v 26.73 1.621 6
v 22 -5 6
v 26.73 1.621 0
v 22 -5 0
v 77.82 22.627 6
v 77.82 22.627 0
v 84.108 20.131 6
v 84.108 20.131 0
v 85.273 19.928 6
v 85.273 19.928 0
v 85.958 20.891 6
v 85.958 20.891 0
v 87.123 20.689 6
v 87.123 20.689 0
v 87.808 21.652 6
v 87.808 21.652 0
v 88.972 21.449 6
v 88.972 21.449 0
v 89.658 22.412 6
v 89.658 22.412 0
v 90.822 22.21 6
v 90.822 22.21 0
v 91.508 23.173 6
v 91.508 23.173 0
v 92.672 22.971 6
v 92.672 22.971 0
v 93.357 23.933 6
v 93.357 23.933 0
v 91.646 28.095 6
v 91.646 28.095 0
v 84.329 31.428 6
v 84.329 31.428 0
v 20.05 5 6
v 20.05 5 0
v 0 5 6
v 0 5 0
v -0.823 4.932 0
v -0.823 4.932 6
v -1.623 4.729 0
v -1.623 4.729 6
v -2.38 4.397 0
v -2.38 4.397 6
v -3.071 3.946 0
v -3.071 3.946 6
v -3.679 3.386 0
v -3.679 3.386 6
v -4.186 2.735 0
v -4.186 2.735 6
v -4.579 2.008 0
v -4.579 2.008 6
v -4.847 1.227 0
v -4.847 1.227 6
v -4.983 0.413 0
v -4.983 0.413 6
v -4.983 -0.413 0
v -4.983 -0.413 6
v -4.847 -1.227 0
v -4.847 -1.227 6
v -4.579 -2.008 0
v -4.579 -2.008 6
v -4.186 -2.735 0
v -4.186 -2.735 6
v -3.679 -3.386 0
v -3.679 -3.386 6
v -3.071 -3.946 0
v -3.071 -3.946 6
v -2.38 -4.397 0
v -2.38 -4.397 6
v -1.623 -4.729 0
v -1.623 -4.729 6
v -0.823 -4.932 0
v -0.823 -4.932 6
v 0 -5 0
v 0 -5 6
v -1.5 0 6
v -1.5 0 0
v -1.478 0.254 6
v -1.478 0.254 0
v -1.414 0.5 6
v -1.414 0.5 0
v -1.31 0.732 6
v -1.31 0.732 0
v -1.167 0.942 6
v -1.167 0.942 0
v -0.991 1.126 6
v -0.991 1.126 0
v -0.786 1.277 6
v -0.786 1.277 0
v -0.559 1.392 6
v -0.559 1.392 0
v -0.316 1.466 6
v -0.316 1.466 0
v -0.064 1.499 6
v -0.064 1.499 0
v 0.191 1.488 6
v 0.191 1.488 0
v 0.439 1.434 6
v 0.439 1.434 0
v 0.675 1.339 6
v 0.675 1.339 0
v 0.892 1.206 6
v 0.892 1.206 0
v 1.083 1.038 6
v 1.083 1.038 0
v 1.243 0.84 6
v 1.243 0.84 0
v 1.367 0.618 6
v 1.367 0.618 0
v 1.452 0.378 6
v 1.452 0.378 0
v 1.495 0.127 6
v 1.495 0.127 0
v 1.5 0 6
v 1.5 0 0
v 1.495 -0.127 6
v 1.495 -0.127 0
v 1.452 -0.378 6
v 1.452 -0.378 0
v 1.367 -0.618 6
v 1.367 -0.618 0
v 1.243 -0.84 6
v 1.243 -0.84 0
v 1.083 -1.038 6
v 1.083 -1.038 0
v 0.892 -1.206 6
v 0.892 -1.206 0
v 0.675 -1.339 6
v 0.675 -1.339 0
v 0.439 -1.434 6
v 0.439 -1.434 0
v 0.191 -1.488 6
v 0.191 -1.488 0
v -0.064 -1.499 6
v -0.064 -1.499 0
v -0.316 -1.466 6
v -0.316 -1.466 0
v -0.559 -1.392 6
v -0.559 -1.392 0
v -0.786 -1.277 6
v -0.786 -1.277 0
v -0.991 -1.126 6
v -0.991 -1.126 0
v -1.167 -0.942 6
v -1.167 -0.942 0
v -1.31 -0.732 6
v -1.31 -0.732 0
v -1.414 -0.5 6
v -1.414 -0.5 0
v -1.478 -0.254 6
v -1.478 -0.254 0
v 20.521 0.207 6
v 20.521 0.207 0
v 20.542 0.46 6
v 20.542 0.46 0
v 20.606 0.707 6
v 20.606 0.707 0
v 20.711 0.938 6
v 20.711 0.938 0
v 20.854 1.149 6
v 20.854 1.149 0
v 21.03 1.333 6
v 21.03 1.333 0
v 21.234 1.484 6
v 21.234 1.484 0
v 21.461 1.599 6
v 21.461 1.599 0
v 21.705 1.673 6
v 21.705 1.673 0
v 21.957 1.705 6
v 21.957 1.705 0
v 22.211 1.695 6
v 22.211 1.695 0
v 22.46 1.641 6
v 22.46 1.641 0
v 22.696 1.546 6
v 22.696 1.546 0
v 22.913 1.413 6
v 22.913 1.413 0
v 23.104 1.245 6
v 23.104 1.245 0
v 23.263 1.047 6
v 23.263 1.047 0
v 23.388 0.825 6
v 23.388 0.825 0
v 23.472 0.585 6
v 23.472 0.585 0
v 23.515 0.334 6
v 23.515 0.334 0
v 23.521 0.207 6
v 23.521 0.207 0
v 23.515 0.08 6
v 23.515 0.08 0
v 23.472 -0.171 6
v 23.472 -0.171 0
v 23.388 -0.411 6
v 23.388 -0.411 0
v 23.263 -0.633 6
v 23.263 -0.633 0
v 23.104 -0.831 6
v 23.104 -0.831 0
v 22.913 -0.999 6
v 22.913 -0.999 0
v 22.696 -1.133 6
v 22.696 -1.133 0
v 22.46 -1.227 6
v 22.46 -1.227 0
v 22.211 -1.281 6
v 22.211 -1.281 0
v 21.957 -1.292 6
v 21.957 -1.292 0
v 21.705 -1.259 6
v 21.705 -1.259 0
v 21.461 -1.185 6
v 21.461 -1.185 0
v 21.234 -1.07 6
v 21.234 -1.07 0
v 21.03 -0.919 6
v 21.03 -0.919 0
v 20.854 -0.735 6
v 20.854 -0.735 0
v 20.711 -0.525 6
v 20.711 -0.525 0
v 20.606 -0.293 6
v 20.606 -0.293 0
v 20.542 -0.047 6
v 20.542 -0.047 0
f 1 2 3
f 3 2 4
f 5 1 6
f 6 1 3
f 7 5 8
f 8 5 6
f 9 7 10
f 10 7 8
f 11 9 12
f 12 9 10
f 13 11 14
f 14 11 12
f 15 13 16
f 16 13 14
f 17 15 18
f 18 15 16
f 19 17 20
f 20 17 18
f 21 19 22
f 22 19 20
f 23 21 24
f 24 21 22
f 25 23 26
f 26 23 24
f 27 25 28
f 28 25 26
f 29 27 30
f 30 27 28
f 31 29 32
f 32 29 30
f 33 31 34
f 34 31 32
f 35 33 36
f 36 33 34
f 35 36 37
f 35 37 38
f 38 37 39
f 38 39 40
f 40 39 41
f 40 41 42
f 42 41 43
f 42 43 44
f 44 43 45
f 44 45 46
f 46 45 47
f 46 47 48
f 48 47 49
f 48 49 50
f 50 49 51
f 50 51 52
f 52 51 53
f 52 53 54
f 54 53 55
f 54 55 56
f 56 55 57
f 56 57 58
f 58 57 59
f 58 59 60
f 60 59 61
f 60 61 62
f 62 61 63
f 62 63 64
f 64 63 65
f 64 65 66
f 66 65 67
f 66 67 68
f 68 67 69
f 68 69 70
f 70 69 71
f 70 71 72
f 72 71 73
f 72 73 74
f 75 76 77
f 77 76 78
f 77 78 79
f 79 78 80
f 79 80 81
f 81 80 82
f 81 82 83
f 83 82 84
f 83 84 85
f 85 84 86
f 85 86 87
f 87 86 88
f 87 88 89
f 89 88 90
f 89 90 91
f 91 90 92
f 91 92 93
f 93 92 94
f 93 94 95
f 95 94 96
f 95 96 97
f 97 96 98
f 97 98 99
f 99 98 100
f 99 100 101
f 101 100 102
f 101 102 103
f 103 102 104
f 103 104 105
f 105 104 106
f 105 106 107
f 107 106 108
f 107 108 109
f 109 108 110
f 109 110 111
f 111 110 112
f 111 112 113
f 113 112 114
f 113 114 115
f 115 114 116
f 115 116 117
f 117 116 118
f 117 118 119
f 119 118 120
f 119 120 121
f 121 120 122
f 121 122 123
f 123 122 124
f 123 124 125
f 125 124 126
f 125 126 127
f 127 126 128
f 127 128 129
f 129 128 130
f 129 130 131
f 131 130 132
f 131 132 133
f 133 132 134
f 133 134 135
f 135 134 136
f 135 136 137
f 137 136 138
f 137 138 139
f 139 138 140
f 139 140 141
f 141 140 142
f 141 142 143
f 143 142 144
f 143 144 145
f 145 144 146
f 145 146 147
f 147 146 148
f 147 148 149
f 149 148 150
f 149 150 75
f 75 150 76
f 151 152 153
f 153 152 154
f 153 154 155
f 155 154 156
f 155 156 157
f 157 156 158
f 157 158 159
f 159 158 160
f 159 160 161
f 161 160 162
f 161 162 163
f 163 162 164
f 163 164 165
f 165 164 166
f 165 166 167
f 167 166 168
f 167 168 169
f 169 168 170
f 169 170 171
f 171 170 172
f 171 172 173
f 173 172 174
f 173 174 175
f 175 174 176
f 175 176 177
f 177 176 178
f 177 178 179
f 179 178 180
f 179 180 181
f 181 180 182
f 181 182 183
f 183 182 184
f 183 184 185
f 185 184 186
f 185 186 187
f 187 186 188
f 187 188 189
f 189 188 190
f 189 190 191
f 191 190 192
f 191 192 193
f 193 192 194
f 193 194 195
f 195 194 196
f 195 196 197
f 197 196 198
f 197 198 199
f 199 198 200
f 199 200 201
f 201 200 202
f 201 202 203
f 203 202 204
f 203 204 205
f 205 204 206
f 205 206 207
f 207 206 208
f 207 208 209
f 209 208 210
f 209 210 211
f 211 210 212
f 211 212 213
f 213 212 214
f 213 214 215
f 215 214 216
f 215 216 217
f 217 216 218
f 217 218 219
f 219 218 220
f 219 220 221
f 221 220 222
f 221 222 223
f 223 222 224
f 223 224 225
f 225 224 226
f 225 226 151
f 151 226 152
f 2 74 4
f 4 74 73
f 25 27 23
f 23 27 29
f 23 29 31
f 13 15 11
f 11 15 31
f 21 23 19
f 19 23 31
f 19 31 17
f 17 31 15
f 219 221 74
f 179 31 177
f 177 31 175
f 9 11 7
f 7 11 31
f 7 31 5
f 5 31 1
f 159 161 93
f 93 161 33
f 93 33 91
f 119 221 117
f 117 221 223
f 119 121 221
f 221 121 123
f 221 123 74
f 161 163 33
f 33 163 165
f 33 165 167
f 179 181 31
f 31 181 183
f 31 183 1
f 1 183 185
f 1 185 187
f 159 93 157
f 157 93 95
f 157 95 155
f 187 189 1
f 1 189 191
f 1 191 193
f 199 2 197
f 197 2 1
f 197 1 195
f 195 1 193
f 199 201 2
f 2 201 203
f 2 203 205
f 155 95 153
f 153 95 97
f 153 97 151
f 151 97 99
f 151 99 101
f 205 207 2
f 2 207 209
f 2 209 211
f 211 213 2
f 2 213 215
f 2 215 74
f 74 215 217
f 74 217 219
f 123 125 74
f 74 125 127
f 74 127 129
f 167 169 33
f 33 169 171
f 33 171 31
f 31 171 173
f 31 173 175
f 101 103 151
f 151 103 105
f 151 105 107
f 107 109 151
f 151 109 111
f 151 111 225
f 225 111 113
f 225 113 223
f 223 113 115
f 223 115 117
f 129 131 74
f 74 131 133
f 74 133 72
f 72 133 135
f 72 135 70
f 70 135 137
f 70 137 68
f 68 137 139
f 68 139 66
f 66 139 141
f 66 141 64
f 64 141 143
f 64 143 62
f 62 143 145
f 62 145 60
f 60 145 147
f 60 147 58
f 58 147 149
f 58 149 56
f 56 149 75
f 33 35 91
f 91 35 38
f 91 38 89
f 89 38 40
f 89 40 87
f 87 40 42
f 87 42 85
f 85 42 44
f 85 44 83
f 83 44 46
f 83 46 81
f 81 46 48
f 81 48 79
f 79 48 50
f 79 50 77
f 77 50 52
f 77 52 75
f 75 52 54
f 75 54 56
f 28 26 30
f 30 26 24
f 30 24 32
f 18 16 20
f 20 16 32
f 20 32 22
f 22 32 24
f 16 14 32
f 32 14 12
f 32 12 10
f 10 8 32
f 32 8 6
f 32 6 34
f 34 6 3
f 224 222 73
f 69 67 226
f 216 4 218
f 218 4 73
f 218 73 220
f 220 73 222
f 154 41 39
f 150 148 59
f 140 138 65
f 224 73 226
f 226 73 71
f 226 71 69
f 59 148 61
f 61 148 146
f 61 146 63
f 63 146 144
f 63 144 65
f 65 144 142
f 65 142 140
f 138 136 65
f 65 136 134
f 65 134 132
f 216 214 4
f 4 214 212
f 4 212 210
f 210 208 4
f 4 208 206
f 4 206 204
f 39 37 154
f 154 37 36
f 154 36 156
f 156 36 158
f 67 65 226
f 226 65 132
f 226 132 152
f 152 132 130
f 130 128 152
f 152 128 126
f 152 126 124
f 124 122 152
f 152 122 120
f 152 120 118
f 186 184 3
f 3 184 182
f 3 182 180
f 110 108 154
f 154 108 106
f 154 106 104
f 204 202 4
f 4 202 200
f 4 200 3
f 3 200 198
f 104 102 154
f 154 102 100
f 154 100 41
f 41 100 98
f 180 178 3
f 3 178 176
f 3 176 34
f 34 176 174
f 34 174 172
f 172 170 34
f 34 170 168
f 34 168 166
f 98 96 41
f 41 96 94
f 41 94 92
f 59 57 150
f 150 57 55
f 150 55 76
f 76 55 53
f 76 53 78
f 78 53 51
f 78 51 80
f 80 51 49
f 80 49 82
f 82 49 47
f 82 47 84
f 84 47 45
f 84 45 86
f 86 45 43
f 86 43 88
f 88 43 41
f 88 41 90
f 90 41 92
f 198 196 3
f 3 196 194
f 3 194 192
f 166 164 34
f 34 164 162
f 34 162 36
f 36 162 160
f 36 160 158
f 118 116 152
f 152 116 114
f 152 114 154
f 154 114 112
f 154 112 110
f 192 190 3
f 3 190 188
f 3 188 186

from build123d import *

# Parameters (mm, degrees)
SKETCH1_R           = 1.5
BOSS_EXTRUDE3_DEPTH = 6


with BuildPart() as part:
    # Sketch1 → Boss-Extrude3 (new body)
    with BuildSketch(Plane.XY):
        with BuildLine():
            Line((20.05, 5), (0, 5))
            ThreePointArc((0, 5), (-5, 0), (0, -5))
            Line((0, -5), (22, -5))
            Line((22, -5), (26.72989842, 1.621129525))
            Line((26.72989842, 1.621129525), (77.820171744, 22.626880444))
            Line((77.820171744, 22.626880444), (84.10849538, 20.130806965))
            Line((84.10849538, 20.130806965), (85.272939558, 19.928397094))
            Line((85.272939558, 19.928397094), (85.958251837, 20.89133379))
            Line((85.958251837, 20.89133379), (87.122696015, 20.688923919))
            Line((87.122696015, 20.688923919), (87.808008293, 21.651860615))
            Line((87.808008293, 21.651860615), (88.972452471, 21.449450744))
            Line((88.972452471, 21.449450744), (89.657764749, 22.412387441))
            Line((89.657764749, 22.412387441), (90.822208927, 22.20997757))
            Line((90.822208927, 22.20997757), (91.507521206, 23.172914266))
            Line((91.507521206, 23.172914266), (92.671965384, 22.970504395))
            Line((92.671965384, 22.970504395), (93.357277662, 23.933441092))
            Line((93.357277662, 23.933441092), (91.646092305, 28.095393119))
            Line((91.646092305, 28.095393119), (84.329036858, 31.428307185))
            Line((84.329036858, 31.428307185), (20.05, 5))
        make_face()
        Circle(SKETCH1_R, mode=Mode.SUBTRACT)
        with Locations((22.020705275, 0.206842568)):
            Circle(SKETCH1_R, mode=Mode.SUBTRACT)
    extrude(amount=BOSS_EXTRUDE3_DEPTH)


solid = part.part
